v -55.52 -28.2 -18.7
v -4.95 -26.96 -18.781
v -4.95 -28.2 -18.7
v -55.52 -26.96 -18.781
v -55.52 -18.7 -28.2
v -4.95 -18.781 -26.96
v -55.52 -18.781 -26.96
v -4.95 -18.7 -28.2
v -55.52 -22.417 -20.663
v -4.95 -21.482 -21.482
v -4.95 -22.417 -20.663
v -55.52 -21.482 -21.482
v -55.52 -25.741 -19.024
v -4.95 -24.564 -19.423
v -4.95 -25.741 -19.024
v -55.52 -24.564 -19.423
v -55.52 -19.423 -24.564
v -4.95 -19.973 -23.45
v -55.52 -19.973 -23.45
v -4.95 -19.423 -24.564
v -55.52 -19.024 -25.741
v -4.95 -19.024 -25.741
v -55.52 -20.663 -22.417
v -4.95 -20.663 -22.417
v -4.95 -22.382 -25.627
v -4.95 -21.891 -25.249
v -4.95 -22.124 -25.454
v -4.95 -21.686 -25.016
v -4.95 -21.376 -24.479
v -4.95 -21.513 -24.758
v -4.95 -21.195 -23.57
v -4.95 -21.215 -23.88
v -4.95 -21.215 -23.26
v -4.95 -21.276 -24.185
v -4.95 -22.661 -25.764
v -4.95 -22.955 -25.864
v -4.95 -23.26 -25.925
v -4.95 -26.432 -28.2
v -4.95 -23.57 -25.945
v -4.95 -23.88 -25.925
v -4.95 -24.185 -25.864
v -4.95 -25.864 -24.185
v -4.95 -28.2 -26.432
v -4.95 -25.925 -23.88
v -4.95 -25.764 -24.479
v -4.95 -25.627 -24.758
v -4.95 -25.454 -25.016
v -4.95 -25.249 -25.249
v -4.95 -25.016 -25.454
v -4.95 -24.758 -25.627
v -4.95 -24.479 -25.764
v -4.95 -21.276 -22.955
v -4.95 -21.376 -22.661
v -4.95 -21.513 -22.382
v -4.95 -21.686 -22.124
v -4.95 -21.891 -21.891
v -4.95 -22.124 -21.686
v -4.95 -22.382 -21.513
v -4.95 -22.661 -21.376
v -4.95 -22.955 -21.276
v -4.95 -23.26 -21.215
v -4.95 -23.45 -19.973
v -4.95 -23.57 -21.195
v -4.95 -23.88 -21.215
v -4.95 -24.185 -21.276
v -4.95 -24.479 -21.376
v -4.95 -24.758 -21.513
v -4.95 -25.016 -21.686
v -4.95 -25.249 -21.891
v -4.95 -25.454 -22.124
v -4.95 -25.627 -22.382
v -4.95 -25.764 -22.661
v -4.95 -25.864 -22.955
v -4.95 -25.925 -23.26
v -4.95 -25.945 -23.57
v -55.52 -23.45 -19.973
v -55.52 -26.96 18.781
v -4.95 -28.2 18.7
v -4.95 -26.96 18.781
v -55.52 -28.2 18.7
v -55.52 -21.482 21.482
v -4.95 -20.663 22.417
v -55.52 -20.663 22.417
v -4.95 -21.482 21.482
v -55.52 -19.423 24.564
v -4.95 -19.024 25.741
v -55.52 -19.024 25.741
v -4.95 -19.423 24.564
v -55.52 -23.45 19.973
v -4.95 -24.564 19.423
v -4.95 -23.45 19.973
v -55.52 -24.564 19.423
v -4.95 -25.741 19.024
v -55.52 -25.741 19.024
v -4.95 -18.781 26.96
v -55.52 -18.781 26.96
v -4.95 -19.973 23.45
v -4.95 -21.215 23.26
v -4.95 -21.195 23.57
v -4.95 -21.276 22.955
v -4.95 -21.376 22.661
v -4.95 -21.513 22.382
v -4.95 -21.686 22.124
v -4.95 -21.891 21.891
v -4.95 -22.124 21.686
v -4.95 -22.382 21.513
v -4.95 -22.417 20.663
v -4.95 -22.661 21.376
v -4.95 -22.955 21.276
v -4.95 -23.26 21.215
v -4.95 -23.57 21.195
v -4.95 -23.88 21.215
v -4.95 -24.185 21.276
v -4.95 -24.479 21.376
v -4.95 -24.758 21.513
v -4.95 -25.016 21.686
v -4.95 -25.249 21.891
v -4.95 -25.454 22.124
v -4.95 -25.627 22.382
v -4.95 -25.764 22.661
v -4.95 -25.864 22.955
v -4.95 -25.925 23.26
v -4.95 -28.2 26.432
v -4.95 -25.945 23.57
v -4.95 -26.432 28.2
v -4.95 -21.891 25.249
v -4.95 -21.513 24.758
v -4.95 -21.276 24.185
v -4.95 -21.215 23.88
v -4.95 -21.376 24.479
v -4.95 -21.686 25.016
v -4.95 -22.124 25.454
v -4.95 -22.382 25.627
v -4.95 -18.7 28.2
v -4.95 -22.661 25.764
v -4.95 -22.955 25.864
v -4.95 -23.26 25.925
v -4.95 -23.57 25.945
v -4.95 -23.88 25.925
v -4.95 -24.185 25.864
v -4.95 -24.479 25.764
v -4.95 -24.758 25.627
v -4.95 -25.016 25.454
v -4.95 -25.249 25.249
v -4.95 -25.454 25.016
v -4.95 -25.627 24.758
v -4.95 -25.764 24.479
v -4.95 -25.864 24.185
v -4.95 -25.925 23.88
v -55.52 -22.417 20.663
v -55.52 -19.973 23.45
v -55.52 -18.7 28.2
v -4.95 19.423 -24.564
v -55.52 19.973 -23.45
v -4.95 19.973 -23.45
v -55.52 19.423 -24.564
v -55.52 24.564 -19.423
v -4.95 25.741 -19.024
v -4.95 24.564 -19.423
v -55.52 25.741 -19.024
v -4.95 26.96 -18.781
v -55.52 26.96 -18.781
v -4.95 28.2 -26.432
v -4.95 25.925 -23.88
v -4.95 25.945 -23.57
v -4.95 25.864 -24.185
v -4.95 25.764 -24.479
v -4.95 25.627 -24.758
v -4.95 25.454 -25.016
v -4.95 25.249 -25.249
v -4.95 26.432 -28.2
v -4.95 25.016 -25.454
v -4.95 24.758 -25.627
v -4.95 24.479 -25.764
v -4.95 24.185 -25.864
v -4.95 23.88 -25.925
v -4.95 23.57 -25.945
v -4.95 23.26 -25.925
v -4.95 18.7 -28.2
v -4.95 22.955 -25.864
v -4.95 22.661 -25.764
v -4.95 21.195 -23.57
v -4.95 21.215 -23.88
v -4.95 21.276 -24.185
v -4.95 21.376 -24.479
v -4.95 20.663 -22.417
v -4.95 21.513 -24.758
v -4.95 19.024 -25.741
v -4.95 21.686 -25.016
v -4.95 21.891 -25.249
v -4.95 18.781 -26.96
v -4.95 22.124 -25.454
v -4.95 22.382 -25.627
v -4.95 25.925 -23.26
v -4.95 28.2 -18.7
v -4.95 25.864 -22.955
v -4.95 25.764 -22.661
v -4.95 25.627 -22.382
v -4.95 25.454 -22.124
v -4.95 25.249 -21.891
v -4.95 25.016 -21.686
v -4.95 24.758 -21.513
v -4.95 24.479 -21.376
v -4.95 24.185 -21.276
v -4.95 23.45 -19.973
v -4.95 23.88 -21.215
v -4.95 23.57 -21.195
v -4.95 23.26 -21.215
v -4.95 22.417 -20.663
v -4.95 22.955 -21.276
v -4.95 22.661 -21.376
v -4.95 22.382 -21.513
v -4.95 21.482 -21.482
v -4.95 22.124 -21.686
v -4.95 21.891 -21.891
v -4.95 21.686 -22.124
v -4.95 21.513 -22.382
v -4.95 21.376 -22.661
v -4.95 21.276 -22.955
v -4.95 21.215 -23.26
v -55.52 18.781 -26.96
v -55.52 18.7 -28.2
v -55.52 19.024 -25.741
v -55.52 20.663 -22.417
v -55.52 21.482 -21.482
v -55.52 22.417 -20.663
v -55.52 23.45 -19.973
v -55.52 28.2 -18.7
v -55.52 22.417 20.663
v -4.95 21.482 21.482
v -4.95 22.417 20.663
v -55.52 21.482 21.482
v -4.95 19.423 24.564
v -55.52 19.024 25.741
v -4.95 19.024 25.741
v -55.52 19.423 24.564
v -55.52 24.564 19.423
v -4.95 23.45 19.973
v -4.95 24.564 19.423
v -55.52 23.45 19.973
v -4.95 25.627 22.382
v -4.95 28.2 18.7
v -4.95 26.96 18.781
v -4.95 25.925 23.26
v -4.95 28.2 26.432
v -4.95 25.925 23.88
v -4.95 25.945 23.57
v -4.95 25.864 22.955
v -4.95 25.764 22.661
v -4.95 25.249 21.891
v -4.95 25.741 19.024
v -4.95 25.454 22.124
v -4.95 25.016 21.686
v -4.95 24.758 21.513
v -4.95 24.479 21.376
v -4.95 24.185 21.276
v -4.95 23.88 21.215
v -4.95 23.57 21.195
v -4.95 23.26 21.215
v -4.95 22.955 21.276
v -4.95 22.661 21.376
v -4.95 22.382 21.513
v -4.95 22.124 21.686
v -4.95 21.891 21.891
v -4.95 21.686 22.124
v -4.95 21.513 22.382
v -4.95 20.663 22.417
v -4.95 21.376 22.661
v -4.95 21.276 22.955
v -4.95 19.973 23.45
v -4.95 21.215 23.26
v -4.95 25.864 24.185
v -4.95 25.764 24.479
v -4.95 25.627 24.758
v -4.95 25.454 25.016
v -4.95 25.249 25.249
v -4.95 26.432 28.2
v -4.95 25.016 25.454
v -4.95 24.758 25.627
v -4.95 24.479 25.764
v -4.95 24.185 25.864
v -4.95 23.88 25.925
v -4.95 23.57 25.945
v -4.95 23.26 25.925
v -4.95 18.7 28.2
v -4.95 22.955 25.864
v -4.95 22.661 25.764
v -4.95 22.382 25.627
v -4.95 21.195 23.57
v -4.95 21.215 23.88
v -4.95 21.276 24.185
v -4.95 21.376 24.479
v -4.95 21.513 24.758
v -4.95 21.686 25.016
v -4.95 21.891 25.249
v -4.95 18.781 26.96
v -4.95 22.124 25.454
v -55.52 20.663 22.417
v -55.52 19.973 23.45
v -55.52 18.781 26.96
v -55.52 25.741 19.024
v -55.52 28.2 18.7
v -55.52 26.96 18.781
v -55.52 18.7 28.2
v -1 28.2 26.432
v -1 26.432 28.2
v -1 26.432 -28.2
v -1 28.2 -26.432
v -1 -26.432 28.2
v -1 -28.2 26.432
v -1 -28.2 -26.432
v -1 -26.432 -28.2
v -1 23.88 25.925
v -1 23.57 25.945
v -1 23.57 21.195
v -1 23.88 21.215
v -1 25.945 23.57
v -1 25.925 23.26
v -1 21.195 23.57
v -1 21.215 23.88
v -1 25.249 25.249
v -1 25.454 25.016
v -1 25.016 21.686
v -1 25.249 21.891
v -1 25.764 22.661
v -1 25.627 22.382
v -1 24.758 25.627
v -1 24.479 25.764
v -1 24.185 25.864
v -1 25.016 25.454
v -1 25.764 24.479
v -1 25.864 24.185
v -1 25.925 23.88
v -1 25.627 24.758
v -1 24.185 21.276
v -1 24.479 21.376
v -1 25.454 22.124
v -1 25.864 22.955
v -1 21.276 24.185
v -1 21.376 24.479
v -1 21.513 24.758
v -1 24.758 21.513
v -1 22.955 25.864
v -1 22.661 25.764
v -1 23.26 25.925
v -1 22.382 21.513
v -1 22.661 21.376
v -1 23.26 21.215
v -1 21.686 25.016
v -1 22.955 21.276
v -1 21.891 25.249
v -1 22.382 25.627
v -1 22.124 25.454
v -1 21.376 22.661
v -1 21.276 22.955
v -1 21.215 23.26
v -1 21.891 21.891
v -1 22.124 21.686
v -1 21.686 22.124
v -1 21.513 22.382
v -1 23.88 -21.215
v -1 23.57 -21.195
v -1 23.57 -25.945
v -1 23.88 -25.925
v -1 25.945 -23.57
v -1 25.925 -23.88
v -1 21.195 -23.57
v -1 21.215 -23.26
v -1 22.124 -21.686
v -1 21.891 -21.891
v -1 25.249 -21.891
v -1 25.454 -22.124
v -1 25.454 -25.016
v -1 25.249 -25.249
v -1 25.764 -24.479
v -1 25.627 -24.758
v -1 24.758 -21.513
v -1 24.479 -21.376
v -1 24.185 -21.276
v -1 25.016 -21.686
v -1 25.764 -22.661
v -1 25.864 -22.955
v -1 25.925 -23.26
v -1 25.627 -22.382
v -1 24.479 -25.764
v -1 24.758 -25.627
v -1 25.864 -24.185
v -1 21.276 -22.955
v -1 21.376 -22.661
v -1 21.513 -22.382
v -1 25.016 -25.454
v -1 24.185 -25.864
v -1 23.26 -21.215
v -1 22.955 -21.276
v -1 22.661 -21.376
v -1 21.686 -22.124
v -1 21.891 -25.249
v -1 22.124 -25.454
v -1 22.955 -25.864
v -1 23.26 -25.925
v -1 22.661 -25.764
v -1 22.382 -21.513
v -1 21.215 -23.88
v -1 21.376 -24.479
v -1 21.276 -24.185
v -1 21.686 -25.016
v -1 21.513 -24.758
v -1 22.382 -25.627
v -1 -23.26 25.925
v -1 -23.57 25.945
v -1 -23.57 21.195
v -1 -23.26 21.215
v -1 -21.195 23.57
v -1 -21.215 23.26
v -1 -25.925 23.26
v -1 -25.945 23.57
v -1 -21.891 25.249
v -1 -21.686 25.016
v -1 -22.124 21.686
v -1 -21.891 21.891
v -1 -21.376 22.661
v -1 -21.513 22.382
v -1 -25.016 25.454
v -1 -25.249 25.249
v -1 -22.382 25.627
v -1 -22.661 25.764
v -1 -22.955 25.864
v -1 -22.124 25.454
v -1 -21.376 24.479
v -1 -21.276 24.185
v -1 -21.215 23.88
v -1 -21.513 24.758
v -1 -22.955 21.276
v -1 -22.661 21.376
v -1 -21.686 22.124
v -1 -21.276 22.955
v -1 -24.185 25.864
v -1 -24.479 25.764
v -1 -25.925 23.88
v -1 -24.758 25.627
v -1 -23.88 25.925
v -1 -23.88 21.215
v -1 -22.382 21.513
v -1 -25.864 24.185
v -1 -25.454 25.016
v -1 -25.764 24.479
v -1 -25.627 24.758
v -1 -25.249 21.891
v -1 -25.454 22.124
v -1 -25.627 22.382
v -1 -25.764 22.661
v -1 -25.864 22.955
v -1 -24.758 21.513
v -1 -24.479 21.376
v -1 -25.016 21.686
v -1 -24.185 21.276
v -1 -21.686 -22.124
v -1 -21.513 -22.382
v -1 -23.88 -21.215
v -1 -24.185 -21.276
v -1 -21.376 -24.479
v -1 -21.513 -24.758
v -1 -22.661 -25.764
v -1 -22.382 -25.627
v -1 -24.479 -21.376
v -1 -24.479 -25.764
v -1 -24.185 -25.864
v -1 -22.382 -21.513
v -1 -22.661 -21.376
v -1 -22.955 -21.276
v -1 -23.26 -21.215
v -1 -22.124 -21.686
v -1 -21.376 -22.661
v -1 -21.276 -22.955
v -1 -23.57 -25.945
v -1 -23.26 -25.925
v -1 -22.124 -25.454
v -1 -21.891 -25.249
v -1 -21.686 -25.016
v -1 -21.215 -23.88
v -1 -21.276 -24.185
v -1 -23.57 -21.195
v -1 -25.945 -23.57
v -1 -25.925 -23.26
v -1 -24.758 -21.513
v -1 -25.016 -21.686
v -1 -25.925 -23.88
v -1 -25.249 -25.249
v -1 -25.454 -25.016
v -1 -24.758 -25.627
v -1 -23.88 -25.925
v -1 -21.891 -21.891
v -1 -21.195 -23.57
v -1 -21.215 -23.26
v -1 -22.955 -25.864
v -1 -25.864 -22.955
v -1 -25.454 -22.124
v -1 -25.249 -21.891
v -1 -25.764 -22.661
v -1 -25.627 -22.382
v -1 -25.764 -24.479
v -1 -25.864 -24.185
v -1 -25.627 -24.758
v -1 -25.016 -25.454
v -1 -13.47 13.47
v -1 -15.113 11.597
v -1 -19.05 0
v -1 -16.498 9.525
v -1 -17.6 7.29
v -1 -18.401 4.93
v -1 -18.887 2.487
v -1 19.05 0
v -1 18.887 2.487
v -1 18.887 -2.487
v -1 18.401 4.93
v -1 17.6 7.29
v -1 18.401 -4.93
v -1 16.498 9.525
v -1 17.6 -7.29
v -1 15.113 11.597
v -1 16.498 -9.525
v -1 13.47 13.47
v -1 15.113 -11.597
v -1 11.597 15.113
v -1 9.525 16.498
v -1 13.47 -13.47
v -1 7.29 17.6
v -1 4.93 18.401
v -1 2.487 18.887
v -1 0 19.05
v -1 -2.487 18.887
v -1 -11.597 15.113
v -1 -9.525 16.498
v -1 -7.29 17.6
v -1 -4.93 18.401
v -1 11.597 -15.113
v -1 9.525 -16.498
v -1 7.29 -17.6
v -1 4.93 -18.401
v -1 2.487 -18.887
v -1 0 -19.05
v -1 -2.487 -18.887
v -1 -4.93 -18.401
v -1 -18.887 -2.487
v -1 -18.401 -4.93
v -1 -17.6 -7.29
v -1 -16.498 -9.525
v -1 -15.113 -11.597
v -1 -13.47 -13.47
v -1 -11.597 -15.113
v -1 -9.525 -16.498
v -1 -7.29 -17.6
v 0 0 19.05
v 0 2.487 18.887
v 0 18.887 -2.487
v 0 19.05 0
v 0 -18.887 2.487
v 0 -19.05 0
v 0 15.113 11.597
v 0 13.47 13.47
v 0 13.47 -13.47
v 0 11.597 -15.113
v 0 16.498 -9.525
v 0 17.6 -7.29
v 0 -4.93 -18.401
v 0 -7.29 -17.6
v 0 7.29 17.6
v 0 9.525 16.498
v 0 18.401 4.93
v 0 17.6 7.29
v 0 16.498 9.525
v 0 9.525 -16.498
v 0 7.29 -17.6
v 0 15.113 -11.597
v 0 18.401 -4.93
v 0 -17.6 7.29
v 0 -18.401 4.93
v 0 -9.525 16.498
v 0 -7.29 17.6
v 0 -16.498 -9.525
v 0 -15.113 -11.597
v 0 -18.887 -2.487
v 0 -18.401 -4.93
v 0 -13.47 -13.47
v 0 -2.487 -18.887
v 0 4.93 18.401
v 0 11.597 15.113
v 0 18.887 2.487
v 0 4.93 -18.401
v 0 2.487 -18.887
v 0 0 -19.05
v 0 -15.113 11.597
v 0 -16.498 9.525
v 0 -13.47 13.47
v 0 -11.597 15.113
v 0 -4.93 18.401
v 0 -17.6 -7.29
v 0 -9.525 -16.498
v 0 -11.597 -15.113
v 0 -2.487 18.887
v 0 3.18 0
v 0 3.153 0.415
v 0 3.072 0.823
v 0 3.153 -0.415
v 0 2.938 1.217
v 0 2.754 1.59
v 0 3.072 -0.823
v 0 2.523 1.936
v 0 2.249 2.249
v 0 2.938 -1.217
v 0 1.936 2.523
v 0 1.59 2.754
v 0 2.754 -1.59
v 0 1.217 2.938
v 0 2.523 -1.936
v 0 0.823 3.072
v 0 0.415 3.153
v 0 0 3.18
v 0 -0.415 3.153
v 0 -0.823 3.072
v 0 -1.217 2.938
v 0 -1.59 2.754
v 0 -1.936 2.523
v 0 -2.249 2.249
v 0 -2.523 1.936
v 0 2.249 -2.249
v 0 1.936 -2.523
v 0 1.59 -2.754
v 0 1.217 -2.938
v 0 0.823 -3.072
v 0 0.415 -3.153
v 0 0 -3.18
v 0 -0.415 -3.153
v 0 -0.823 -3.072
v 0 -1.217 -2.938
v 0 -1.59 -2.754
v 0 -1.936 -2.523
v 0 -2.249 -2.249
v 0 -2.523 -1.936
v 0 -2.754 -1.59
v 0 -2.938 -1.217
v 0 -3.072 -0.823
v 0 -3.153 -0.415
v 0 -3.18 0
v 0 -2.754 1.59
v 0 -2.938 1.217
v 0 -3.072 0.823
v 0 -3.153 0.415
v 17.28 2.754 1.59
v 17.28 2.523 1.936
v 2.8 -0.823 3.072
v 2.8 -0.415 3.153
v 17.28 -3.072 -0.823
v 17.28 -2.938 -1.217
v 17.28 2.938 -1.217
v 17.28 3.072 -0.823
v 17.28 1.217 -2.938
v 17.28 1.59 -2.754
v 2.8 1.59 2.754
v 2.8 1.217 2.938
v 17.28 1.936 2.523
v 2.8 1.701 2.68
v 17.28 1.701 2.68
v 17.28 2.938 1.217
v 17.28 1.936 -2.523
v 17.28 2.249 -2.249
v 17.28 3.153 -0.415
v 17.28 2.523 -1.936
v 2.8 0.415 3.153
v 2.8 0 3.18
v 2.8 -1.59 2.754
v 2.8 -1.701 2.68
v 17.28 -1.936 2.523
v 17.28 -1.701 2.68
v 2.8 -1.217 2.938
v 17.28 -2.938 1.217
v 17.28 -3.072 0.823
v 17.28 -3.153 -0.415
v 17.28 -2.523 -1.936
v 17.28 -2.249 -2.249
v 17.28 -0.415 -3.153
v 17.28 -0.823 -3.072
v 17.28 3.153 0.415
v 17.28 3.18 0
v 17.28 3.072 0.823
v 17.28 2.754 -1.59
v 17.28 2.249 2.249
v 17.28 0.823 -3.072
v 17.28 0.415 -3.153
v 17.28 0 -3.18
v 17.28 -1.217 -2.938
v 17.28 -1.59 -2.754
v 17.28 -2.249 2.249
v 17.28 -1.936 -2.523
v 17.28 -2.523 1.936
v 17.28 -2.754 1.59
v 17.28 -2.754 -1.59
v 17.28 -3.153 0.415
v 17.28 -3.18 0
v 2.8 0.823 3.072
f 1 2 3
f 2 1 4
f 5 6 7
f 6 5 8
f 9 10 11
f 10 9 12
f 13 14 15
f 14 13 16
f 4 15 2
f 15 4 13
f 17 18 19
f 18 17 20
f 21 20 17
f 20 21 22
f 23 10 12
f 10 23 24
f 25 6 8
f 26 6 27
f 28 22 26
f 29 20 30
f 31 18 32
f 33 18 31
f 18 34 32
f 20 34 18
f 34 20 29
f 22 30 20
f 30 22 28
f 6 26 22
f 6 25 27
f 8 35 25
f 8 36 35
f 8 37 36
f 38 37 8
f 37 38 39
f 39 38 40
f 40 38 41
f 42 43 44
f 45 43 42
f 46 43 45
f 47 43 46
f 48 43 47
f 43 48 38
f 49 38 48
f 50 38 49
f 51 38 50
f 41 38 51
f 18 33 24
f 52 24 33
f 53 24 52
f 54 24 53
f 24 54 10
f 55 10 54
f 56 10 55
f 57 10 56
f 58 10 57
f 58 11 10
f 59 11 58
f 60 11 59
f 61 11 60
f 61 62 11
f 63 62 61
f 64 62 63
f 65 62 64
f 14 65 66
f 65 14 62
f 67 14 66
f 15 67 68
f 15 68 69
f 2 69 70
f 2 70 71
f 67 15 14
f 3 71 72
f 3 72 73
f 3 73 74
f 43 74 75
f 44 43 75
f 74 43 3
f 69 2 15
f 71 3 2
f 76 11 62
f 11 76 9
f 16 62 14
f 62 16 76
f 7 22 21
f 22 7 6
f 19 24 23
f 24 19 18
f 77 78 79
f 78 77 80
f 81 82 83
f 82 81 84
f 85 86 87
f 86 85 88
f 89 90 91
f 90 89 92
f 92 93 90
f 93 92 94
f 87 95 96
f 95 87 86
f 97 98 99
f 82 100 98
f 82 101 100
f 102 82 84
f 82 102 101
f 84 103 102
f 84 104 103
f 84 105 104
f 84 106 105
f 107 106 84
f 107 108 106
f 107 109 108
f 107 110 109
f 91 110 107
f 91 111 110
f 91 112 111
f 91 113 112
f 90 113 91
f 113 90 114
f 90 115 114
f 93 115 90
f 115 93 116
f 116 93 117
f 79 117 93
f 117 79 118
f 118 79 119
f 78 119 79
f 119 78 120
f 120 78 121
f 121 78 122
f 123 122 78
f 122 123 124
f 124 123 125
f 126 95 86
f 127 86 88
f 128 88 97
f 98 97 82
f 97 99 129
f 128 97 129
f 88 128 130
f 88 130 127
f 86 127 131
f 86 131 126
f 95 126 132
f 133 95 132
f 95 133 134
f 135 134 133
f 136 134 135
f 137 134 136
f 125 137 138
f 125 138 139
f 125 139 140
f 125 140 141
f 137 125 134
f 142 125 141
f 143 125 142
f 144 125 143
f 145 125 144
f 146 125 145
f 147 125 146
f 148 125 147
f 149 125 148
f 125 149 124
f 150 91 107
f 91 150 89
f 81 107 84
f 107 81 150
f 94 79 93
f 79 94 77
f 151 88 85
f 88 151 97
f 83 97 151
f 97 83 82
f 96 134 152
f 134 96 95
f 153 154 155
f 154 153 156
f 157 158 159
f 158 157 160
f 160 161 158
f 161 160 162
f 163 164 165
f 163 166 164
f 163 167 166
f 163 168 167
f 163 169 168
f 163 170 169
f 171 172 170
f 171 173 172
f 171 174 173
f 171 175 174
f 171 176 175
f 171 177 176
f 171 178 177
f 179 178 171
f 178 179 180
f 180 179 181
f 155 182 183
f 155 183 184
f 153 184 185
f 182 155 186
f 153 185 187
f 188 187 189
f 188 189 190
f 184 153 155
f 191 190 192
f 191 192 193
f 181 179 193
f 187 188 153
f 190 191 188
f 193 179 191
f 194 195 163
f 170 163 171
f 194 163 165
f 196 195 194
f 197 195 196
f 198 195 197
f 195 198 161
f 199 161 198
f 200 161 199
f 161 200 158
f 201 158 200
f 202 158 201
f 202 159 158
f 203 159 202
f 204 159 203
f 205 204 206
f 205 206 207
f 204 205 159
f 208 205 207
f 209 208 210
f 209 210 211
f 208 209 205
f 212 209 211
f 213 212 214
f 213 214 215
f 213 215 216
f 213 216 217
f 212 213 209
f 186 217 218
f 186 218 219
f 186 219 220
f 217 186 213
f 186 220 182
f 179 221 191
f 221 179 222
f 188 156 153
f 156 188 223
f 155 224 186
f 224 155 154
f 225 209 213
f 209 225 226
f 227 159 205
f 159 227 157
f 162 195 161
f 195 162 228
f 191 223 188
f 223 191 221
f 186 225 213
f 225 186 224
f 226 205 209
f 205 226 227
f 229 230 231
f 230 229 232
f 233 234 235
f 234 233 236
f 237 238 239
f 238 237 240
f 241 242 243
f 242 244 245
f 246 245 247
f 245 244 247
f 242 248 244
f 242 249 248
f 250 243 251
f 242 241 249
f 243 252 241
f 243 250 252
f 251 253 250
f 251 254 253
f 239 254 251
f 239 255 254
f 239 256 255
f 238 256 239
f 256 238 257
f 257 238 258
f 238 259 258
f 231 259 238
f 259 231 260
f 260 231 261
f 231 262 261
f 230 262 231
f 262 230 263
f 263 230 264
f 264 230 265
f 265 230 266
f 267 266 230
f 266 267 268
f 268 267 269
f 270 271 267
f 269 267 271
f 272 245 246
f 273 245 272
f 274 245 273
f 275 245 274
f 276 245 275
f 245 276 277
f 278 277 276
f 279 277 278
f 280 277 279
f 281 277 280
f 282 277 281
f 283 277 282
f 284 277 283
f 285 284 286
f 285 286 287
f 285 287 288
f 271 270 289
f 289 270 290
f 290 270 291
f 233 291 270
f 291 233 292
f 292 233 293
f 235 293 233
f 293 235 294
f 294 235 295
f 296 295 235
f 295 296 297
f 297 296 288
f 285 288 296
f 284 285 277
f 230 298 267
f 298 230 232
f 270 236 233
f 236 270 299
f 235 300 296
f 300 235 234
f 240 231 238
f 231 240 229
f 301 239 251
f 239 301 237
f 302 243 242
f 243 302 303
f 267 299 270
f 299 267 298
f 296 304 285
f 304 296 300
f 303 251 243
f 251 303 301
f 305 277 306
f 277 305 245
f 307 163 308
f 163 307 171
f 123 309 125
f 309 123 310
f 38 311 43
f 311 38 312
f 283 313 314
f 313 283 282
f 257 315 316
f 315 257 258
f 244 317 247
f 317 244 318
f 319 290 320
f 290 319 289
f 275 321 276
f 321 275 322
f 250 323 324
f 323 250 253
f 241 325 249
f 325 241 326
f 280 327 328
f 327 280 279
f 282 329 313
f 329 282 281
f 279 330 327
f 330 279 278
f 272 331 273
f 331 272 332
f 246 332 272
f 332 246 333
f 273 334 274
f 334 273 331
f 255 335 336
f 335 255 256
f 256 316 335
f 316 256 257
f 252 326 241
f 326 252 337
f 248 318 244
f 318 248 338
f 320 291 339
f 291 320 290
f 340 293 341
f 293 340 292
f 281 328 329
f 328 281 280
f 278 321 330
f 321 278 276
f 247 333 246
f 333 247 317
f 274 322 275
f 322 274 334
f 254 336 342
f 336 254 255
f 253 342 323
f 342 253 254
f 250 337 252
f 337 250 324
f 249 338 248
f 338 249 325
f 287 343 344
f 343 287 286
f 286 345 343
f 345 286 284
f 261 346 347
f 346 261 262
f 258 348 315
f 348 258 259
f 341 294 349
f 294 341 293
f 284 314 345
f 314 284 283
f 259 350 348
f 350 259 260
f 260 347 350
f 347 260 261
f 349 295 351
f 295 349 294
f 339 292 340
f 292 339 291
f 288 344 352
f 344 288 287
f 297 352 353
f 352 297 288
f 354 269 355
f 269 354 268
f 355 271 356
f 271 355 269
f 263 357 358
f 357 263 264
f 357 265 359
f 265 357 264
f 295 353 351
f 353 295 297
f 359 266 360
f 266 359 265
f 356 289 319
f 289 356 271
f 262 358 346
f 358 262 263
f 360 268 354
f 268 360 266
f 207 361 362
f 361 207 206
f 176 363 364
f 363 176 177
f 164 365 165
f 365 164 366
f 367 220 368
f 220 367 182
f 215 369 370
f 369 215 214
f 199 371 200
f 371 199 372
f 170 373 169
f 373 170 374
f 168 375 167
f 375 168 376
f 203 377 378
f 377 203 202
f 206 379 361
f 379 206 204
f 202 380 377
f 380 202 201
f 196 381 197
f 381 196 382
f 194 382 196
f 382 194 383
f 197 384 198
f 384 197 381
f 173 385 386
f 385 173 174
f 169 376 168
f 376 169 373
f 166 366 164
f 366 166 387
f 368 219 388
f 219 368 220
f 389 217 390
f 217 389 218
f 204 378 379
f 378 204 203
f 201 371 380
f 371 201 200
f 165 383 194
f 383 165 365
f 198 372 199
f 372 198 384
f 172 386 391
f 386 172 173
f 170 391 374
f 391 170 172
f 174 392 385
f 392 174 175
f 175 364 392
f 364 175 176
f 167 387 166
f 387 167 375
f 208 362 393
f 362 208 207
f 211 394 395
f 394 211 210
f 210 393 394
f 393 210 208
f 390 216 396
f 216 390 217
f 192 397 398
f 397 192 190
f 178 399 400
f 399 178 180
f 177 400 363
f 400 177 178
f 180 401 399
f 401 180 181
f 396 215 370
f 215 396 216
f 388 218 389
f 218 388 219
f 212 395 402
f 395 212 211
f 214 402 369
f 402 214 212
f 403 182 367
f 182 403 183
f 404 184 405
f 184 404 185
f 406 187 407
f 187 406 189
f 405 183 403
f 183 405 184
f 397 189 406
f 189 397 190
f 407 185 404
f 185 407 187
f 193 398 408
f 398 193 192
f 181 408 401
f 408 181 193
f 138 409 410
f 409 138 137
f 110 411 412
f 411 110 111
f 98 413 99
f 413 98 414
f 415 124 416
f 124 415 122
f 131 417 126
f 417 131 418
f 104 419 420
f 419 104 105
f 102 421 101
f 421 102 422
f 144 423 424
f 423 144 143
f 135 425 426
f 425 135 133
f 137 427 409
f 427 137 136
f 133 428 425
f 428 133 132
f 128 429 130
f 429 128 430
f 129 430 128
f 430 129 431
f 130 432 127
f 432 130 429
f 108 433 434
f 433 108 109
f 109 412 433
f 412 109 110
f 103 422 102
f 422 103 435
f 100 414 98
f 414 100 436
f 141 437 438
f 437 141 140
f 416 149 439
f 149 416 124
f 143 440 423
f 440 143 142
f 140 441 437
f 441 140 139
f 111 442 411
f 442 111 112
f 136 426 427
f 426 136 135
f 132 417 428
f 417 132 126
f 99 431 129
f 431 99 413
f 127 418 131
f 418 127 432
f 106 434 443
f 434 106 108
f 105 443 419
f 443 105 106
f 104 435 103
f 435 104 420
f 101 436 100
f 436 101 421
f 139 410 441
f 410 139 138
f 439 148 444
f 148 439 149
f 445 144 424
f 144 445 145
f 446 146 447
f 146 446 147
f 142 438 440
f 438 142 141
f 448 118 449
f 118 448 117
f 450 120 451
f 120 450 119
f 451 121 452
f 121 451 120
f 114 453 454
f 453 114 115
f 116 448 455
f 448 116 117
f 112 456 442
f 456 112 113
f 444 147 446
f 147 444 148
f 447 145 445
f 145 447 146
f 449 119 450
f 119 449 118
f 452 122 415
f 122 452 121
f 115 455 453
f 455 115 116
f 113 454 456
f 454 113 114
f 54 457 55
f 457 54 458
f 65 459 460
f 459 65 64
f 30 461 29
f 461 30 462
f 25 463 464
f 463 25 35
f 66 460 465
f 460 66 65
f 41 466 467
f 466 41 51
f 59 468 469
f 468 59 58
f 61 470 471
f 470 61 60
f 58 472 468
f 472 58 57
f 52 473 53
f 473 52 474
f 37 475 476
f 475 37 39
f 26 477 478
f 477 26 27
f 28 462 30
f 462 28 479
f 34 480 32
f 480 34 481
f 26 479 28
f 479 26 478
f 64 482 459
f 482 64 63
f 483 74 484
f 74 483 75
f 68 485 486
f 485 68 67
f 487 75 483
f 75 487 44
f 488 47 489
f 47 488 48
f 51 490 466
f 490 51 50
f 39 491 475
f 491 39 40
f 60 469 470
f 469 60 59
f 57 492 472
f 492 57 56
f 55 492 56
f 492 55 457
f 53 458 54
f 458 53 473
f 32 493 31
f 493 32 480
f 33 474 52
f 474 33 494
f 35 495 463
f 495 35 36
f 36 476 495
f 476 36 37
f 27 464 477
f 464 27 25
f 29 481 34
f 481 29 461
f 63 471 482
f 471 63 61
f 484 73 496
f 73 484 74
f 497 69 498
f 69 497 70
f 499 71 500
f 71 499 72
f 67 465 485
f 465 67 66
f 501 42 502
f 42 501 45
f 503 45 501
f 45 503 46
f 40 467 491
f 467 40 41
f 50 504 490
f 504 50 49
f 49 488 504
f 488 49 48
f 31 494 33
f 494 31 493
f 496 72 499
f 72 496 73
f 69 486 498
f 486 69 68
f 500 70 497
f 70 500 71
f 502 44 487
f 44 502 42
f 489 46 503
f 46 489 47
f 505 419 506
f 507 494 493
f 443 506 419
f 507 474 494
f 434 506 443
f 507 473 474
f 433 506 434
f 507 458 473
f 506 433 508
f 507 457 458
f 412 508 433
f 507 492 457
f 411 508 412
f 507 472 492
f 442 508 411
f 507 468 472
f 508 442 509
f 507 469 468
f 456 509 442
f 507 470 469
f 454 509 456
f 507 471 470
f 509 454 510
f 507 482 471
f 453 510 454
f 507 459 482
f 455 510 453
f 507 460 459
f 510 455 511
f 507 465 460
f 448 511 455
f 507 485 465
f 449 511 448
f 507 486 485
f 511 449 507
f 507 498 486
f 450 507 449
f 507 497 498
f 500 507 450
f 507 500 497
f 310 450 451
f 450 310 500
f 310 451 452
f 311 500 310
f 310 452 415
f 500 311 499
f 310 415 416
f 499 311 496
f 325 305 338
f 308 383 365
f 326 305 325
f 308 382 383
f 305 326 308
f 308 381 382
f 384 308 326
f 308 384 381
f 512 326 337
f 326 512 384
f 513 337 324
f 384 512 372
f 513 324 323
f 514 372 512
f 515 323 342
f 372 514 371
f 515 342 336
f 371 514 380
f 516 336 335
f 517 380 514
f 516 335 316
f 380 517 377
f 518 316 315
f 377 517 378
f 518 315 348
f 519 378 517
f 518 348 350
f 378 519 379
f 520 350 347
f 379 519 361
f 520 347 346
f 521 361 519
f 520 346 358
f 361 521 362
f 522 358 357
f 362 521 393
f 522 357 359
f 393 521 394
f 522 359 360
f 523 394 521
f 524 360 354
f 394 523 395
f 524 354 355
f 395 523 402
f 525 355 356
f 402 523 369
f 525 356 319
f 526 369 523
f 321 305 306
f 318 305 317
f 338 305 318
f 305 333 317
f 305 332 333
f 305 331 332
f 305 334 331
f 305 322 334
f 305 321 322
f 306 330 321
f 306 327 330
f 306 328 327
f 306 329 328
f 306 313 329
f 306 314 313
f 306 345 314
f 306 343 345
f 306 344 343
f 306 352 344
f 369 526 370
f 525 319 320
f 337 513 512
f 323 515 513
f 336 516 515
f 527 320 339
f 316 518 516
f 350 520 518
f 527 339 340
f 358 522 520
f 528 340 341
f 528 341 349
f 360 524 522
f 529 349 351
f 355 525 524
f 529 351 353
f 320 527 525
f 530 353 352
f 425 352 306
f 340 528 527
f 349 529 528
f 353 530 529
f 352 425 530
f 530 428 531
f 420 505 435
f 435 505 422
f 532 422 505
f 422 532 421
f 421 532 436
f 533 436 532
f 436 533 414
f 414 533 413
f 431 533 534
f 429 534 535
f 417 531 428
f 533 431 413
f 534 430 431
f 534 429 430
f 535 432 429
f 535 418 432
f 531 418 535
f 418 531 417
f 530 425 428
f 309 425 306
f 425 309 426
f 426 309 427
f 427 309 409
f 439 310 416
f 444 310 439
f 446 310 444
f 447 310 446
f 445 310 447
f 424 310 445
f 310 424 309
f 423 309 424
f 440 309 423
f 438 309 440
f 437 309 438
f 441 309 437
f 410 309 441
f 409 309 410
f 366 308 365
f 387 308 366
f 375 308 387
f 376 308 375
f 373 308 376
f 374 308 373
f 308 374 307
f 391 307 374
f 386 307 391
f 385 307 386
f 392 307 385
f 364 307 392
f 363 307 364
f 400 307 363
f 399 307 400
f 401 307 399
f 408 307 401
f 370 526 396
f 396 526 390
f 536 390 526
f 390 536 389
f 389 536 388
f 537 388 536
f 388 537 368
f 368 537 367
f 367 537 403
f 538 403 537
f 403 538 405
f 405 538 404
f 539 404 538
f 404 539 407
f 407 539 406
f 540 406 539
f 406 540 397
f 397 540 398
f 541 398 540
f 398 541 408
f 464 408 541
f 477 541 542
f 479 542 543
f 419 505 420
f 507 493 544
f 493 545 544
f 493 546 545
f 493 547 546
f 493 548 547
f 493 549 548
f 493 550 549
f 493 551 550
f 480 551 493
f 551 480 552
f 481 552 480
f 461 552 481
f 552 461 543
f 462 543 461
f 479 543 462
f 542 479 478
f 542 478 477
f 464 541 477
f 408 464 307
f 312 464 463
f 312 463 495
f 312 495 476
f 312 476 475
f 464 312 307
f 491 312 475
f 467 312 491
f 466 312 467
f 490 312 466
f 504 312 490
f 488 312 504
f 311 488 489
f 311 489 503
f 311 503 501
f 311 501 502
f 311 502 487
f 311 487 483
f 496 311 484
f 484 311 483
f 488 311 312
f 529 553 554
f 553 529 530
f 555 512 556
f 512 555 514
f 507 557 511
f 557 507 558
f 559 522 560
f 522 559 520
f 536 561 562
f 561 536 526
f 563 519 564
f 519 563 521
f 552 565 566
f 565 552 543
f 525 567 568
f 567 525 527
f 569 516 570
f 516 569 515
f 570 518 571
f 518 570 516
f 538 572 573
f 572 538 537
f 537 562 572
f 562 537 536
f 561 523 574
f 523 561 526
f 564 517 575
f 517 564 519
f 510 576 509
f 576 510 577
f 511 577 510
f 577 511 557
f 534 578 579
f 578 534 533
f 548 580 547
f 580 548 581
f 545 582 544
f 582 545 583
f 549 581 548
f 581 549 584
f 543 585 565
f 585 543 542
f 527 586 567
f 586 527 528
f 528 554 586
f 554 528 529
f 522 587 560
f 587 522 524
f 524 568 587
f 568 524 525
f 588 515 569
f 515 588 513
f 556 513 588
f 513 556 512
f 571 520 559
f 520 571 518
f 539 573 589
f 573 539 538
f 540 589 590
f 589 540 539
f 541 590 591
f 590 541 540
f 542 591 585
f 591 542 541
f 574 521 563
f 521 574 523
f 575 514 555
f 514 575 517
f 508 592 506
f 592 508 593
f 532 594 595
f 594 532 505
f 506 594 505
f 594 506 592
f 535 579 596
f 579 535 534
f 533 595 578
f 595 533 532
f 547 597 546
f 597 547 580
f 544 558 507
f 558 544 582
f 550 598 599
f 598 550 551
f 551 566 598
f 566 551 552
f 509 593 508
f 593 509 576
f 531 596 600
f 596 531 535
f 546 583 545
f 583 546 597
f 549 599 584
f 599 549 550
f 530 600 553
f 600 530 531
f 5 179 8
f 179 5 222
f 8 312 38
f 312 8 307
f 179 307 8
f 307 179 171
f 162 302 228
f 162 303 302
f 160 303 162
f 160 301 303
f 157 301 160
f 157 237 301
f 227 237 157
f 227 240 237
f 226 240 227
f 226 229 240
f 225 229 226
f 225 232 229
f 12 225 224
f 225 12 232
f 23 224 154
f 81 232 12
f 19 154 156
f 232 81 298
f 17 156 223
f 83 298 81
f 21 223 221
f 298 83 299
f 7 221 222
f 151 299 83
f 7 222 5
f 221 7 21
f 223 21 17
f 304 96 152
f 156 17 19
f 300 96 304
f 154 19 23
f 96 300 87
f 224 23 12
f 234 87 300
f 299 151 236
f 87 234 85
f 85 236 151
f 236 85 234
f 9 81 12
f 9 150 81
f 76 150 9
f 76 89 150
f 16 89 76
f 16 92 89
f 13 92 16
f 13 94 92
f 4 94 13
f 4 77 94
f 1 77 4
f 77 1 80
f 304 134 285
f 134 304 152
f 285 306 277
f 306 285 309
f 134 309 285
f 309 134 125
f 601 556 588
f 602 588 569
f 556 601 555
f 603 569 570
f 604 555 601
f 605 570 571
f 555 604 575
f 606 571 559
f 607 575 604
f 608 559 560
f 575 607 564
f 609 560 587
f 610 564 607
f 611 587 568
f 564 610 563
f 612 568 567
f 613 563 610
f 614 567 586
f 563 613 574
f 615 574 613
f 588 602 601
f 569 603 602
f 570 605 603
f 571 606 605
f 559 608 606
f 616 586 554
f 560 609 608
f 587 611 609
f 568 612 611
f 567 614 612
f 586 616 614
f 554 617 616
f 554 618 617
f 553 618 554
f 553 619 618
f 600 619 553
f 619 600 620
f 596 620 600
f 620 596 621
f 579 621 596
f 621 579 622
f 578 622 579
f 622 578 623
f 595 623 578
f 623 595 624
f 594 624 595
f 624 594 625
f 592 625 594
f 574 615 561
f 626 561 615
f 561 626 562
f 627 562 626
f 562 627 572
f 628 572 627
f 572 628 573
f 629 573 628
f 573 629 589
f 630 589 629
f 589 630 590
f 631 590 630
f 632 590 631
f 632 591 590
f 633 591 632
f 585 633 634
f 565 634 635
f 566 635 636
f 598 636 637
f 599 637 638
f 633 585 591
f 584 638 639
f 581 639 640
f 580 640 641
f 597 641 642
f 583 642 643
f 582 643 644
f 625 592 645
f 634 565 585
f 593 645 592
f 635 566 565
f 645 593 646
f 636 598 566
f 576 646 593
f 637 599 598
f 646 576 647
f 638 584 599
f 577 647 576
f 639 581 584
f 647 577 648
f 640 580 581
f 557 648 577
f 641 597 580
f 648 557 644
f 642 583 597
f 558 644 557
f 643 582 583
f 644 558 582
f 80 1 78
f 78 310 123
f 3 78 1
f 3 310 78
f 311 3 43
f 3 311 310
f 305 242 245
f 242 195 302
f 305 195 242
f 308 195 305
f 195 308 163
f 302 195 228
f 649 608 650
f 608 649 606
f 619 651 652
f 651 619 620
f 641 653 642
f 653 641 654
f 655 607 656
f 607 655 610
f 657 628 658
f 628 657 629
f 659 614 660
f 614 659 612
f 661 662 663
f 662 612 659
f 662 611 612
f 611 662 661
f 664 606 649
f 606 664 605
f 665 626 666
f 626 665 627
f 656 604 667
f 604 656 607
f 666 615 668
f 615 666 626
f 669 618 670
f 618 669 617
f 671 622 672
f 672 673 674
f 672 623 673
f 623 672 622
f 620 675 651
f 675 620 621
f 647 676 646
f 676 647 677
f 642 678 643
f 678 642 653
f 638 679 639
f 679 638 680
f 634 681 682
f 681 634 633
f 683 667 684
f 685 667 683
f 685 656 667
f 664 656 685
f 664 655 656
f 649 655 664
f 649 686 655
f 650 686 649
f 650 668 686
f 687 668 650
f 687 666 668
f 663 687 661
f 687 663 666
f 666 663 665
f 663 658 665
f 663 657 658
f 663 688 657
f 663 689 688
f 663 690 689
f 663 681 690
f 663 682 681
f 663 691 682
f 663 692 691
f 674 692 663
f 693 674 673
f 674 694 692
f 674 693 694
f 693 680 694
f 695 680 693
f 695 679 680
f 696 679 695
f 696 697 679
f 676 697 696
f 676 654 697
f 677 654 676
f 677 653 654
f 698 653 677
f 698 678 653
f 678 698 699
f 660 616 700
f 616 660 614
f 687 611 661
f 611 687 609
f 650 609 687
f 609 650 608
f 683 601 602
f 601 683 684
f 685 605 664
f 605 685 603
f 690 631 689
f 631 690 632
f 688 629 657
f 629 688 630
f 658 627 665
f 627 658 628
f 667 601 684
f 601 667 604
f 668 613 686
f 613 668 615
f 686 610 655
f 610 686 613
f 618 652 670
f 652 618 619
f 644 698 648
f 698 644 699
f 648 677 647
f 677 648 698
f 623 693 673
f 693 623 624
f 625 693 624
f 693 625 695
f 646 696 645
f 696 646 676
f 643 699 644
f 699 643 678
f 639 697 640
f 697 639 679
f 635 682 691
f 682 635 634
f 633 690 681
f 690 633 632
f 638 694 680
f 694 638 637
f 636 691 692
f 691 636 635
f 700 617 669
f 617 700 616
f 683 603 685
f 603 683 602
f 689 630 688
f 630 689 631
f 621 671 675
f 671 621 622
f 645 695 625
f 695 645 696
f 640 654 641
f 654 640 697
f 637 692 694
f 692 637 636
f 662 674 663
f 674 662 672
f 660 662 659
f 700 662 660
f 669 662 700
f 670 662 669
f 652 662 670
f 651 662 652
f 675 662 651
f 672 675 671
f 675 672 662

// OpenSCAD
/**********************************************************************************************************************
 **
 ** lib/MCAD/stepper_nema23_medium.scad
 **
 ** This file renders a NEMA stepper motor of the dimensions specified by the file name.
 **
 **********************************************************************************************************************/

include <MCAD/stepper.scad>

$fn = 48;
rotate([0, -90, 0])
	motor(Nema23, NemaMedium, dualAxis = false);
